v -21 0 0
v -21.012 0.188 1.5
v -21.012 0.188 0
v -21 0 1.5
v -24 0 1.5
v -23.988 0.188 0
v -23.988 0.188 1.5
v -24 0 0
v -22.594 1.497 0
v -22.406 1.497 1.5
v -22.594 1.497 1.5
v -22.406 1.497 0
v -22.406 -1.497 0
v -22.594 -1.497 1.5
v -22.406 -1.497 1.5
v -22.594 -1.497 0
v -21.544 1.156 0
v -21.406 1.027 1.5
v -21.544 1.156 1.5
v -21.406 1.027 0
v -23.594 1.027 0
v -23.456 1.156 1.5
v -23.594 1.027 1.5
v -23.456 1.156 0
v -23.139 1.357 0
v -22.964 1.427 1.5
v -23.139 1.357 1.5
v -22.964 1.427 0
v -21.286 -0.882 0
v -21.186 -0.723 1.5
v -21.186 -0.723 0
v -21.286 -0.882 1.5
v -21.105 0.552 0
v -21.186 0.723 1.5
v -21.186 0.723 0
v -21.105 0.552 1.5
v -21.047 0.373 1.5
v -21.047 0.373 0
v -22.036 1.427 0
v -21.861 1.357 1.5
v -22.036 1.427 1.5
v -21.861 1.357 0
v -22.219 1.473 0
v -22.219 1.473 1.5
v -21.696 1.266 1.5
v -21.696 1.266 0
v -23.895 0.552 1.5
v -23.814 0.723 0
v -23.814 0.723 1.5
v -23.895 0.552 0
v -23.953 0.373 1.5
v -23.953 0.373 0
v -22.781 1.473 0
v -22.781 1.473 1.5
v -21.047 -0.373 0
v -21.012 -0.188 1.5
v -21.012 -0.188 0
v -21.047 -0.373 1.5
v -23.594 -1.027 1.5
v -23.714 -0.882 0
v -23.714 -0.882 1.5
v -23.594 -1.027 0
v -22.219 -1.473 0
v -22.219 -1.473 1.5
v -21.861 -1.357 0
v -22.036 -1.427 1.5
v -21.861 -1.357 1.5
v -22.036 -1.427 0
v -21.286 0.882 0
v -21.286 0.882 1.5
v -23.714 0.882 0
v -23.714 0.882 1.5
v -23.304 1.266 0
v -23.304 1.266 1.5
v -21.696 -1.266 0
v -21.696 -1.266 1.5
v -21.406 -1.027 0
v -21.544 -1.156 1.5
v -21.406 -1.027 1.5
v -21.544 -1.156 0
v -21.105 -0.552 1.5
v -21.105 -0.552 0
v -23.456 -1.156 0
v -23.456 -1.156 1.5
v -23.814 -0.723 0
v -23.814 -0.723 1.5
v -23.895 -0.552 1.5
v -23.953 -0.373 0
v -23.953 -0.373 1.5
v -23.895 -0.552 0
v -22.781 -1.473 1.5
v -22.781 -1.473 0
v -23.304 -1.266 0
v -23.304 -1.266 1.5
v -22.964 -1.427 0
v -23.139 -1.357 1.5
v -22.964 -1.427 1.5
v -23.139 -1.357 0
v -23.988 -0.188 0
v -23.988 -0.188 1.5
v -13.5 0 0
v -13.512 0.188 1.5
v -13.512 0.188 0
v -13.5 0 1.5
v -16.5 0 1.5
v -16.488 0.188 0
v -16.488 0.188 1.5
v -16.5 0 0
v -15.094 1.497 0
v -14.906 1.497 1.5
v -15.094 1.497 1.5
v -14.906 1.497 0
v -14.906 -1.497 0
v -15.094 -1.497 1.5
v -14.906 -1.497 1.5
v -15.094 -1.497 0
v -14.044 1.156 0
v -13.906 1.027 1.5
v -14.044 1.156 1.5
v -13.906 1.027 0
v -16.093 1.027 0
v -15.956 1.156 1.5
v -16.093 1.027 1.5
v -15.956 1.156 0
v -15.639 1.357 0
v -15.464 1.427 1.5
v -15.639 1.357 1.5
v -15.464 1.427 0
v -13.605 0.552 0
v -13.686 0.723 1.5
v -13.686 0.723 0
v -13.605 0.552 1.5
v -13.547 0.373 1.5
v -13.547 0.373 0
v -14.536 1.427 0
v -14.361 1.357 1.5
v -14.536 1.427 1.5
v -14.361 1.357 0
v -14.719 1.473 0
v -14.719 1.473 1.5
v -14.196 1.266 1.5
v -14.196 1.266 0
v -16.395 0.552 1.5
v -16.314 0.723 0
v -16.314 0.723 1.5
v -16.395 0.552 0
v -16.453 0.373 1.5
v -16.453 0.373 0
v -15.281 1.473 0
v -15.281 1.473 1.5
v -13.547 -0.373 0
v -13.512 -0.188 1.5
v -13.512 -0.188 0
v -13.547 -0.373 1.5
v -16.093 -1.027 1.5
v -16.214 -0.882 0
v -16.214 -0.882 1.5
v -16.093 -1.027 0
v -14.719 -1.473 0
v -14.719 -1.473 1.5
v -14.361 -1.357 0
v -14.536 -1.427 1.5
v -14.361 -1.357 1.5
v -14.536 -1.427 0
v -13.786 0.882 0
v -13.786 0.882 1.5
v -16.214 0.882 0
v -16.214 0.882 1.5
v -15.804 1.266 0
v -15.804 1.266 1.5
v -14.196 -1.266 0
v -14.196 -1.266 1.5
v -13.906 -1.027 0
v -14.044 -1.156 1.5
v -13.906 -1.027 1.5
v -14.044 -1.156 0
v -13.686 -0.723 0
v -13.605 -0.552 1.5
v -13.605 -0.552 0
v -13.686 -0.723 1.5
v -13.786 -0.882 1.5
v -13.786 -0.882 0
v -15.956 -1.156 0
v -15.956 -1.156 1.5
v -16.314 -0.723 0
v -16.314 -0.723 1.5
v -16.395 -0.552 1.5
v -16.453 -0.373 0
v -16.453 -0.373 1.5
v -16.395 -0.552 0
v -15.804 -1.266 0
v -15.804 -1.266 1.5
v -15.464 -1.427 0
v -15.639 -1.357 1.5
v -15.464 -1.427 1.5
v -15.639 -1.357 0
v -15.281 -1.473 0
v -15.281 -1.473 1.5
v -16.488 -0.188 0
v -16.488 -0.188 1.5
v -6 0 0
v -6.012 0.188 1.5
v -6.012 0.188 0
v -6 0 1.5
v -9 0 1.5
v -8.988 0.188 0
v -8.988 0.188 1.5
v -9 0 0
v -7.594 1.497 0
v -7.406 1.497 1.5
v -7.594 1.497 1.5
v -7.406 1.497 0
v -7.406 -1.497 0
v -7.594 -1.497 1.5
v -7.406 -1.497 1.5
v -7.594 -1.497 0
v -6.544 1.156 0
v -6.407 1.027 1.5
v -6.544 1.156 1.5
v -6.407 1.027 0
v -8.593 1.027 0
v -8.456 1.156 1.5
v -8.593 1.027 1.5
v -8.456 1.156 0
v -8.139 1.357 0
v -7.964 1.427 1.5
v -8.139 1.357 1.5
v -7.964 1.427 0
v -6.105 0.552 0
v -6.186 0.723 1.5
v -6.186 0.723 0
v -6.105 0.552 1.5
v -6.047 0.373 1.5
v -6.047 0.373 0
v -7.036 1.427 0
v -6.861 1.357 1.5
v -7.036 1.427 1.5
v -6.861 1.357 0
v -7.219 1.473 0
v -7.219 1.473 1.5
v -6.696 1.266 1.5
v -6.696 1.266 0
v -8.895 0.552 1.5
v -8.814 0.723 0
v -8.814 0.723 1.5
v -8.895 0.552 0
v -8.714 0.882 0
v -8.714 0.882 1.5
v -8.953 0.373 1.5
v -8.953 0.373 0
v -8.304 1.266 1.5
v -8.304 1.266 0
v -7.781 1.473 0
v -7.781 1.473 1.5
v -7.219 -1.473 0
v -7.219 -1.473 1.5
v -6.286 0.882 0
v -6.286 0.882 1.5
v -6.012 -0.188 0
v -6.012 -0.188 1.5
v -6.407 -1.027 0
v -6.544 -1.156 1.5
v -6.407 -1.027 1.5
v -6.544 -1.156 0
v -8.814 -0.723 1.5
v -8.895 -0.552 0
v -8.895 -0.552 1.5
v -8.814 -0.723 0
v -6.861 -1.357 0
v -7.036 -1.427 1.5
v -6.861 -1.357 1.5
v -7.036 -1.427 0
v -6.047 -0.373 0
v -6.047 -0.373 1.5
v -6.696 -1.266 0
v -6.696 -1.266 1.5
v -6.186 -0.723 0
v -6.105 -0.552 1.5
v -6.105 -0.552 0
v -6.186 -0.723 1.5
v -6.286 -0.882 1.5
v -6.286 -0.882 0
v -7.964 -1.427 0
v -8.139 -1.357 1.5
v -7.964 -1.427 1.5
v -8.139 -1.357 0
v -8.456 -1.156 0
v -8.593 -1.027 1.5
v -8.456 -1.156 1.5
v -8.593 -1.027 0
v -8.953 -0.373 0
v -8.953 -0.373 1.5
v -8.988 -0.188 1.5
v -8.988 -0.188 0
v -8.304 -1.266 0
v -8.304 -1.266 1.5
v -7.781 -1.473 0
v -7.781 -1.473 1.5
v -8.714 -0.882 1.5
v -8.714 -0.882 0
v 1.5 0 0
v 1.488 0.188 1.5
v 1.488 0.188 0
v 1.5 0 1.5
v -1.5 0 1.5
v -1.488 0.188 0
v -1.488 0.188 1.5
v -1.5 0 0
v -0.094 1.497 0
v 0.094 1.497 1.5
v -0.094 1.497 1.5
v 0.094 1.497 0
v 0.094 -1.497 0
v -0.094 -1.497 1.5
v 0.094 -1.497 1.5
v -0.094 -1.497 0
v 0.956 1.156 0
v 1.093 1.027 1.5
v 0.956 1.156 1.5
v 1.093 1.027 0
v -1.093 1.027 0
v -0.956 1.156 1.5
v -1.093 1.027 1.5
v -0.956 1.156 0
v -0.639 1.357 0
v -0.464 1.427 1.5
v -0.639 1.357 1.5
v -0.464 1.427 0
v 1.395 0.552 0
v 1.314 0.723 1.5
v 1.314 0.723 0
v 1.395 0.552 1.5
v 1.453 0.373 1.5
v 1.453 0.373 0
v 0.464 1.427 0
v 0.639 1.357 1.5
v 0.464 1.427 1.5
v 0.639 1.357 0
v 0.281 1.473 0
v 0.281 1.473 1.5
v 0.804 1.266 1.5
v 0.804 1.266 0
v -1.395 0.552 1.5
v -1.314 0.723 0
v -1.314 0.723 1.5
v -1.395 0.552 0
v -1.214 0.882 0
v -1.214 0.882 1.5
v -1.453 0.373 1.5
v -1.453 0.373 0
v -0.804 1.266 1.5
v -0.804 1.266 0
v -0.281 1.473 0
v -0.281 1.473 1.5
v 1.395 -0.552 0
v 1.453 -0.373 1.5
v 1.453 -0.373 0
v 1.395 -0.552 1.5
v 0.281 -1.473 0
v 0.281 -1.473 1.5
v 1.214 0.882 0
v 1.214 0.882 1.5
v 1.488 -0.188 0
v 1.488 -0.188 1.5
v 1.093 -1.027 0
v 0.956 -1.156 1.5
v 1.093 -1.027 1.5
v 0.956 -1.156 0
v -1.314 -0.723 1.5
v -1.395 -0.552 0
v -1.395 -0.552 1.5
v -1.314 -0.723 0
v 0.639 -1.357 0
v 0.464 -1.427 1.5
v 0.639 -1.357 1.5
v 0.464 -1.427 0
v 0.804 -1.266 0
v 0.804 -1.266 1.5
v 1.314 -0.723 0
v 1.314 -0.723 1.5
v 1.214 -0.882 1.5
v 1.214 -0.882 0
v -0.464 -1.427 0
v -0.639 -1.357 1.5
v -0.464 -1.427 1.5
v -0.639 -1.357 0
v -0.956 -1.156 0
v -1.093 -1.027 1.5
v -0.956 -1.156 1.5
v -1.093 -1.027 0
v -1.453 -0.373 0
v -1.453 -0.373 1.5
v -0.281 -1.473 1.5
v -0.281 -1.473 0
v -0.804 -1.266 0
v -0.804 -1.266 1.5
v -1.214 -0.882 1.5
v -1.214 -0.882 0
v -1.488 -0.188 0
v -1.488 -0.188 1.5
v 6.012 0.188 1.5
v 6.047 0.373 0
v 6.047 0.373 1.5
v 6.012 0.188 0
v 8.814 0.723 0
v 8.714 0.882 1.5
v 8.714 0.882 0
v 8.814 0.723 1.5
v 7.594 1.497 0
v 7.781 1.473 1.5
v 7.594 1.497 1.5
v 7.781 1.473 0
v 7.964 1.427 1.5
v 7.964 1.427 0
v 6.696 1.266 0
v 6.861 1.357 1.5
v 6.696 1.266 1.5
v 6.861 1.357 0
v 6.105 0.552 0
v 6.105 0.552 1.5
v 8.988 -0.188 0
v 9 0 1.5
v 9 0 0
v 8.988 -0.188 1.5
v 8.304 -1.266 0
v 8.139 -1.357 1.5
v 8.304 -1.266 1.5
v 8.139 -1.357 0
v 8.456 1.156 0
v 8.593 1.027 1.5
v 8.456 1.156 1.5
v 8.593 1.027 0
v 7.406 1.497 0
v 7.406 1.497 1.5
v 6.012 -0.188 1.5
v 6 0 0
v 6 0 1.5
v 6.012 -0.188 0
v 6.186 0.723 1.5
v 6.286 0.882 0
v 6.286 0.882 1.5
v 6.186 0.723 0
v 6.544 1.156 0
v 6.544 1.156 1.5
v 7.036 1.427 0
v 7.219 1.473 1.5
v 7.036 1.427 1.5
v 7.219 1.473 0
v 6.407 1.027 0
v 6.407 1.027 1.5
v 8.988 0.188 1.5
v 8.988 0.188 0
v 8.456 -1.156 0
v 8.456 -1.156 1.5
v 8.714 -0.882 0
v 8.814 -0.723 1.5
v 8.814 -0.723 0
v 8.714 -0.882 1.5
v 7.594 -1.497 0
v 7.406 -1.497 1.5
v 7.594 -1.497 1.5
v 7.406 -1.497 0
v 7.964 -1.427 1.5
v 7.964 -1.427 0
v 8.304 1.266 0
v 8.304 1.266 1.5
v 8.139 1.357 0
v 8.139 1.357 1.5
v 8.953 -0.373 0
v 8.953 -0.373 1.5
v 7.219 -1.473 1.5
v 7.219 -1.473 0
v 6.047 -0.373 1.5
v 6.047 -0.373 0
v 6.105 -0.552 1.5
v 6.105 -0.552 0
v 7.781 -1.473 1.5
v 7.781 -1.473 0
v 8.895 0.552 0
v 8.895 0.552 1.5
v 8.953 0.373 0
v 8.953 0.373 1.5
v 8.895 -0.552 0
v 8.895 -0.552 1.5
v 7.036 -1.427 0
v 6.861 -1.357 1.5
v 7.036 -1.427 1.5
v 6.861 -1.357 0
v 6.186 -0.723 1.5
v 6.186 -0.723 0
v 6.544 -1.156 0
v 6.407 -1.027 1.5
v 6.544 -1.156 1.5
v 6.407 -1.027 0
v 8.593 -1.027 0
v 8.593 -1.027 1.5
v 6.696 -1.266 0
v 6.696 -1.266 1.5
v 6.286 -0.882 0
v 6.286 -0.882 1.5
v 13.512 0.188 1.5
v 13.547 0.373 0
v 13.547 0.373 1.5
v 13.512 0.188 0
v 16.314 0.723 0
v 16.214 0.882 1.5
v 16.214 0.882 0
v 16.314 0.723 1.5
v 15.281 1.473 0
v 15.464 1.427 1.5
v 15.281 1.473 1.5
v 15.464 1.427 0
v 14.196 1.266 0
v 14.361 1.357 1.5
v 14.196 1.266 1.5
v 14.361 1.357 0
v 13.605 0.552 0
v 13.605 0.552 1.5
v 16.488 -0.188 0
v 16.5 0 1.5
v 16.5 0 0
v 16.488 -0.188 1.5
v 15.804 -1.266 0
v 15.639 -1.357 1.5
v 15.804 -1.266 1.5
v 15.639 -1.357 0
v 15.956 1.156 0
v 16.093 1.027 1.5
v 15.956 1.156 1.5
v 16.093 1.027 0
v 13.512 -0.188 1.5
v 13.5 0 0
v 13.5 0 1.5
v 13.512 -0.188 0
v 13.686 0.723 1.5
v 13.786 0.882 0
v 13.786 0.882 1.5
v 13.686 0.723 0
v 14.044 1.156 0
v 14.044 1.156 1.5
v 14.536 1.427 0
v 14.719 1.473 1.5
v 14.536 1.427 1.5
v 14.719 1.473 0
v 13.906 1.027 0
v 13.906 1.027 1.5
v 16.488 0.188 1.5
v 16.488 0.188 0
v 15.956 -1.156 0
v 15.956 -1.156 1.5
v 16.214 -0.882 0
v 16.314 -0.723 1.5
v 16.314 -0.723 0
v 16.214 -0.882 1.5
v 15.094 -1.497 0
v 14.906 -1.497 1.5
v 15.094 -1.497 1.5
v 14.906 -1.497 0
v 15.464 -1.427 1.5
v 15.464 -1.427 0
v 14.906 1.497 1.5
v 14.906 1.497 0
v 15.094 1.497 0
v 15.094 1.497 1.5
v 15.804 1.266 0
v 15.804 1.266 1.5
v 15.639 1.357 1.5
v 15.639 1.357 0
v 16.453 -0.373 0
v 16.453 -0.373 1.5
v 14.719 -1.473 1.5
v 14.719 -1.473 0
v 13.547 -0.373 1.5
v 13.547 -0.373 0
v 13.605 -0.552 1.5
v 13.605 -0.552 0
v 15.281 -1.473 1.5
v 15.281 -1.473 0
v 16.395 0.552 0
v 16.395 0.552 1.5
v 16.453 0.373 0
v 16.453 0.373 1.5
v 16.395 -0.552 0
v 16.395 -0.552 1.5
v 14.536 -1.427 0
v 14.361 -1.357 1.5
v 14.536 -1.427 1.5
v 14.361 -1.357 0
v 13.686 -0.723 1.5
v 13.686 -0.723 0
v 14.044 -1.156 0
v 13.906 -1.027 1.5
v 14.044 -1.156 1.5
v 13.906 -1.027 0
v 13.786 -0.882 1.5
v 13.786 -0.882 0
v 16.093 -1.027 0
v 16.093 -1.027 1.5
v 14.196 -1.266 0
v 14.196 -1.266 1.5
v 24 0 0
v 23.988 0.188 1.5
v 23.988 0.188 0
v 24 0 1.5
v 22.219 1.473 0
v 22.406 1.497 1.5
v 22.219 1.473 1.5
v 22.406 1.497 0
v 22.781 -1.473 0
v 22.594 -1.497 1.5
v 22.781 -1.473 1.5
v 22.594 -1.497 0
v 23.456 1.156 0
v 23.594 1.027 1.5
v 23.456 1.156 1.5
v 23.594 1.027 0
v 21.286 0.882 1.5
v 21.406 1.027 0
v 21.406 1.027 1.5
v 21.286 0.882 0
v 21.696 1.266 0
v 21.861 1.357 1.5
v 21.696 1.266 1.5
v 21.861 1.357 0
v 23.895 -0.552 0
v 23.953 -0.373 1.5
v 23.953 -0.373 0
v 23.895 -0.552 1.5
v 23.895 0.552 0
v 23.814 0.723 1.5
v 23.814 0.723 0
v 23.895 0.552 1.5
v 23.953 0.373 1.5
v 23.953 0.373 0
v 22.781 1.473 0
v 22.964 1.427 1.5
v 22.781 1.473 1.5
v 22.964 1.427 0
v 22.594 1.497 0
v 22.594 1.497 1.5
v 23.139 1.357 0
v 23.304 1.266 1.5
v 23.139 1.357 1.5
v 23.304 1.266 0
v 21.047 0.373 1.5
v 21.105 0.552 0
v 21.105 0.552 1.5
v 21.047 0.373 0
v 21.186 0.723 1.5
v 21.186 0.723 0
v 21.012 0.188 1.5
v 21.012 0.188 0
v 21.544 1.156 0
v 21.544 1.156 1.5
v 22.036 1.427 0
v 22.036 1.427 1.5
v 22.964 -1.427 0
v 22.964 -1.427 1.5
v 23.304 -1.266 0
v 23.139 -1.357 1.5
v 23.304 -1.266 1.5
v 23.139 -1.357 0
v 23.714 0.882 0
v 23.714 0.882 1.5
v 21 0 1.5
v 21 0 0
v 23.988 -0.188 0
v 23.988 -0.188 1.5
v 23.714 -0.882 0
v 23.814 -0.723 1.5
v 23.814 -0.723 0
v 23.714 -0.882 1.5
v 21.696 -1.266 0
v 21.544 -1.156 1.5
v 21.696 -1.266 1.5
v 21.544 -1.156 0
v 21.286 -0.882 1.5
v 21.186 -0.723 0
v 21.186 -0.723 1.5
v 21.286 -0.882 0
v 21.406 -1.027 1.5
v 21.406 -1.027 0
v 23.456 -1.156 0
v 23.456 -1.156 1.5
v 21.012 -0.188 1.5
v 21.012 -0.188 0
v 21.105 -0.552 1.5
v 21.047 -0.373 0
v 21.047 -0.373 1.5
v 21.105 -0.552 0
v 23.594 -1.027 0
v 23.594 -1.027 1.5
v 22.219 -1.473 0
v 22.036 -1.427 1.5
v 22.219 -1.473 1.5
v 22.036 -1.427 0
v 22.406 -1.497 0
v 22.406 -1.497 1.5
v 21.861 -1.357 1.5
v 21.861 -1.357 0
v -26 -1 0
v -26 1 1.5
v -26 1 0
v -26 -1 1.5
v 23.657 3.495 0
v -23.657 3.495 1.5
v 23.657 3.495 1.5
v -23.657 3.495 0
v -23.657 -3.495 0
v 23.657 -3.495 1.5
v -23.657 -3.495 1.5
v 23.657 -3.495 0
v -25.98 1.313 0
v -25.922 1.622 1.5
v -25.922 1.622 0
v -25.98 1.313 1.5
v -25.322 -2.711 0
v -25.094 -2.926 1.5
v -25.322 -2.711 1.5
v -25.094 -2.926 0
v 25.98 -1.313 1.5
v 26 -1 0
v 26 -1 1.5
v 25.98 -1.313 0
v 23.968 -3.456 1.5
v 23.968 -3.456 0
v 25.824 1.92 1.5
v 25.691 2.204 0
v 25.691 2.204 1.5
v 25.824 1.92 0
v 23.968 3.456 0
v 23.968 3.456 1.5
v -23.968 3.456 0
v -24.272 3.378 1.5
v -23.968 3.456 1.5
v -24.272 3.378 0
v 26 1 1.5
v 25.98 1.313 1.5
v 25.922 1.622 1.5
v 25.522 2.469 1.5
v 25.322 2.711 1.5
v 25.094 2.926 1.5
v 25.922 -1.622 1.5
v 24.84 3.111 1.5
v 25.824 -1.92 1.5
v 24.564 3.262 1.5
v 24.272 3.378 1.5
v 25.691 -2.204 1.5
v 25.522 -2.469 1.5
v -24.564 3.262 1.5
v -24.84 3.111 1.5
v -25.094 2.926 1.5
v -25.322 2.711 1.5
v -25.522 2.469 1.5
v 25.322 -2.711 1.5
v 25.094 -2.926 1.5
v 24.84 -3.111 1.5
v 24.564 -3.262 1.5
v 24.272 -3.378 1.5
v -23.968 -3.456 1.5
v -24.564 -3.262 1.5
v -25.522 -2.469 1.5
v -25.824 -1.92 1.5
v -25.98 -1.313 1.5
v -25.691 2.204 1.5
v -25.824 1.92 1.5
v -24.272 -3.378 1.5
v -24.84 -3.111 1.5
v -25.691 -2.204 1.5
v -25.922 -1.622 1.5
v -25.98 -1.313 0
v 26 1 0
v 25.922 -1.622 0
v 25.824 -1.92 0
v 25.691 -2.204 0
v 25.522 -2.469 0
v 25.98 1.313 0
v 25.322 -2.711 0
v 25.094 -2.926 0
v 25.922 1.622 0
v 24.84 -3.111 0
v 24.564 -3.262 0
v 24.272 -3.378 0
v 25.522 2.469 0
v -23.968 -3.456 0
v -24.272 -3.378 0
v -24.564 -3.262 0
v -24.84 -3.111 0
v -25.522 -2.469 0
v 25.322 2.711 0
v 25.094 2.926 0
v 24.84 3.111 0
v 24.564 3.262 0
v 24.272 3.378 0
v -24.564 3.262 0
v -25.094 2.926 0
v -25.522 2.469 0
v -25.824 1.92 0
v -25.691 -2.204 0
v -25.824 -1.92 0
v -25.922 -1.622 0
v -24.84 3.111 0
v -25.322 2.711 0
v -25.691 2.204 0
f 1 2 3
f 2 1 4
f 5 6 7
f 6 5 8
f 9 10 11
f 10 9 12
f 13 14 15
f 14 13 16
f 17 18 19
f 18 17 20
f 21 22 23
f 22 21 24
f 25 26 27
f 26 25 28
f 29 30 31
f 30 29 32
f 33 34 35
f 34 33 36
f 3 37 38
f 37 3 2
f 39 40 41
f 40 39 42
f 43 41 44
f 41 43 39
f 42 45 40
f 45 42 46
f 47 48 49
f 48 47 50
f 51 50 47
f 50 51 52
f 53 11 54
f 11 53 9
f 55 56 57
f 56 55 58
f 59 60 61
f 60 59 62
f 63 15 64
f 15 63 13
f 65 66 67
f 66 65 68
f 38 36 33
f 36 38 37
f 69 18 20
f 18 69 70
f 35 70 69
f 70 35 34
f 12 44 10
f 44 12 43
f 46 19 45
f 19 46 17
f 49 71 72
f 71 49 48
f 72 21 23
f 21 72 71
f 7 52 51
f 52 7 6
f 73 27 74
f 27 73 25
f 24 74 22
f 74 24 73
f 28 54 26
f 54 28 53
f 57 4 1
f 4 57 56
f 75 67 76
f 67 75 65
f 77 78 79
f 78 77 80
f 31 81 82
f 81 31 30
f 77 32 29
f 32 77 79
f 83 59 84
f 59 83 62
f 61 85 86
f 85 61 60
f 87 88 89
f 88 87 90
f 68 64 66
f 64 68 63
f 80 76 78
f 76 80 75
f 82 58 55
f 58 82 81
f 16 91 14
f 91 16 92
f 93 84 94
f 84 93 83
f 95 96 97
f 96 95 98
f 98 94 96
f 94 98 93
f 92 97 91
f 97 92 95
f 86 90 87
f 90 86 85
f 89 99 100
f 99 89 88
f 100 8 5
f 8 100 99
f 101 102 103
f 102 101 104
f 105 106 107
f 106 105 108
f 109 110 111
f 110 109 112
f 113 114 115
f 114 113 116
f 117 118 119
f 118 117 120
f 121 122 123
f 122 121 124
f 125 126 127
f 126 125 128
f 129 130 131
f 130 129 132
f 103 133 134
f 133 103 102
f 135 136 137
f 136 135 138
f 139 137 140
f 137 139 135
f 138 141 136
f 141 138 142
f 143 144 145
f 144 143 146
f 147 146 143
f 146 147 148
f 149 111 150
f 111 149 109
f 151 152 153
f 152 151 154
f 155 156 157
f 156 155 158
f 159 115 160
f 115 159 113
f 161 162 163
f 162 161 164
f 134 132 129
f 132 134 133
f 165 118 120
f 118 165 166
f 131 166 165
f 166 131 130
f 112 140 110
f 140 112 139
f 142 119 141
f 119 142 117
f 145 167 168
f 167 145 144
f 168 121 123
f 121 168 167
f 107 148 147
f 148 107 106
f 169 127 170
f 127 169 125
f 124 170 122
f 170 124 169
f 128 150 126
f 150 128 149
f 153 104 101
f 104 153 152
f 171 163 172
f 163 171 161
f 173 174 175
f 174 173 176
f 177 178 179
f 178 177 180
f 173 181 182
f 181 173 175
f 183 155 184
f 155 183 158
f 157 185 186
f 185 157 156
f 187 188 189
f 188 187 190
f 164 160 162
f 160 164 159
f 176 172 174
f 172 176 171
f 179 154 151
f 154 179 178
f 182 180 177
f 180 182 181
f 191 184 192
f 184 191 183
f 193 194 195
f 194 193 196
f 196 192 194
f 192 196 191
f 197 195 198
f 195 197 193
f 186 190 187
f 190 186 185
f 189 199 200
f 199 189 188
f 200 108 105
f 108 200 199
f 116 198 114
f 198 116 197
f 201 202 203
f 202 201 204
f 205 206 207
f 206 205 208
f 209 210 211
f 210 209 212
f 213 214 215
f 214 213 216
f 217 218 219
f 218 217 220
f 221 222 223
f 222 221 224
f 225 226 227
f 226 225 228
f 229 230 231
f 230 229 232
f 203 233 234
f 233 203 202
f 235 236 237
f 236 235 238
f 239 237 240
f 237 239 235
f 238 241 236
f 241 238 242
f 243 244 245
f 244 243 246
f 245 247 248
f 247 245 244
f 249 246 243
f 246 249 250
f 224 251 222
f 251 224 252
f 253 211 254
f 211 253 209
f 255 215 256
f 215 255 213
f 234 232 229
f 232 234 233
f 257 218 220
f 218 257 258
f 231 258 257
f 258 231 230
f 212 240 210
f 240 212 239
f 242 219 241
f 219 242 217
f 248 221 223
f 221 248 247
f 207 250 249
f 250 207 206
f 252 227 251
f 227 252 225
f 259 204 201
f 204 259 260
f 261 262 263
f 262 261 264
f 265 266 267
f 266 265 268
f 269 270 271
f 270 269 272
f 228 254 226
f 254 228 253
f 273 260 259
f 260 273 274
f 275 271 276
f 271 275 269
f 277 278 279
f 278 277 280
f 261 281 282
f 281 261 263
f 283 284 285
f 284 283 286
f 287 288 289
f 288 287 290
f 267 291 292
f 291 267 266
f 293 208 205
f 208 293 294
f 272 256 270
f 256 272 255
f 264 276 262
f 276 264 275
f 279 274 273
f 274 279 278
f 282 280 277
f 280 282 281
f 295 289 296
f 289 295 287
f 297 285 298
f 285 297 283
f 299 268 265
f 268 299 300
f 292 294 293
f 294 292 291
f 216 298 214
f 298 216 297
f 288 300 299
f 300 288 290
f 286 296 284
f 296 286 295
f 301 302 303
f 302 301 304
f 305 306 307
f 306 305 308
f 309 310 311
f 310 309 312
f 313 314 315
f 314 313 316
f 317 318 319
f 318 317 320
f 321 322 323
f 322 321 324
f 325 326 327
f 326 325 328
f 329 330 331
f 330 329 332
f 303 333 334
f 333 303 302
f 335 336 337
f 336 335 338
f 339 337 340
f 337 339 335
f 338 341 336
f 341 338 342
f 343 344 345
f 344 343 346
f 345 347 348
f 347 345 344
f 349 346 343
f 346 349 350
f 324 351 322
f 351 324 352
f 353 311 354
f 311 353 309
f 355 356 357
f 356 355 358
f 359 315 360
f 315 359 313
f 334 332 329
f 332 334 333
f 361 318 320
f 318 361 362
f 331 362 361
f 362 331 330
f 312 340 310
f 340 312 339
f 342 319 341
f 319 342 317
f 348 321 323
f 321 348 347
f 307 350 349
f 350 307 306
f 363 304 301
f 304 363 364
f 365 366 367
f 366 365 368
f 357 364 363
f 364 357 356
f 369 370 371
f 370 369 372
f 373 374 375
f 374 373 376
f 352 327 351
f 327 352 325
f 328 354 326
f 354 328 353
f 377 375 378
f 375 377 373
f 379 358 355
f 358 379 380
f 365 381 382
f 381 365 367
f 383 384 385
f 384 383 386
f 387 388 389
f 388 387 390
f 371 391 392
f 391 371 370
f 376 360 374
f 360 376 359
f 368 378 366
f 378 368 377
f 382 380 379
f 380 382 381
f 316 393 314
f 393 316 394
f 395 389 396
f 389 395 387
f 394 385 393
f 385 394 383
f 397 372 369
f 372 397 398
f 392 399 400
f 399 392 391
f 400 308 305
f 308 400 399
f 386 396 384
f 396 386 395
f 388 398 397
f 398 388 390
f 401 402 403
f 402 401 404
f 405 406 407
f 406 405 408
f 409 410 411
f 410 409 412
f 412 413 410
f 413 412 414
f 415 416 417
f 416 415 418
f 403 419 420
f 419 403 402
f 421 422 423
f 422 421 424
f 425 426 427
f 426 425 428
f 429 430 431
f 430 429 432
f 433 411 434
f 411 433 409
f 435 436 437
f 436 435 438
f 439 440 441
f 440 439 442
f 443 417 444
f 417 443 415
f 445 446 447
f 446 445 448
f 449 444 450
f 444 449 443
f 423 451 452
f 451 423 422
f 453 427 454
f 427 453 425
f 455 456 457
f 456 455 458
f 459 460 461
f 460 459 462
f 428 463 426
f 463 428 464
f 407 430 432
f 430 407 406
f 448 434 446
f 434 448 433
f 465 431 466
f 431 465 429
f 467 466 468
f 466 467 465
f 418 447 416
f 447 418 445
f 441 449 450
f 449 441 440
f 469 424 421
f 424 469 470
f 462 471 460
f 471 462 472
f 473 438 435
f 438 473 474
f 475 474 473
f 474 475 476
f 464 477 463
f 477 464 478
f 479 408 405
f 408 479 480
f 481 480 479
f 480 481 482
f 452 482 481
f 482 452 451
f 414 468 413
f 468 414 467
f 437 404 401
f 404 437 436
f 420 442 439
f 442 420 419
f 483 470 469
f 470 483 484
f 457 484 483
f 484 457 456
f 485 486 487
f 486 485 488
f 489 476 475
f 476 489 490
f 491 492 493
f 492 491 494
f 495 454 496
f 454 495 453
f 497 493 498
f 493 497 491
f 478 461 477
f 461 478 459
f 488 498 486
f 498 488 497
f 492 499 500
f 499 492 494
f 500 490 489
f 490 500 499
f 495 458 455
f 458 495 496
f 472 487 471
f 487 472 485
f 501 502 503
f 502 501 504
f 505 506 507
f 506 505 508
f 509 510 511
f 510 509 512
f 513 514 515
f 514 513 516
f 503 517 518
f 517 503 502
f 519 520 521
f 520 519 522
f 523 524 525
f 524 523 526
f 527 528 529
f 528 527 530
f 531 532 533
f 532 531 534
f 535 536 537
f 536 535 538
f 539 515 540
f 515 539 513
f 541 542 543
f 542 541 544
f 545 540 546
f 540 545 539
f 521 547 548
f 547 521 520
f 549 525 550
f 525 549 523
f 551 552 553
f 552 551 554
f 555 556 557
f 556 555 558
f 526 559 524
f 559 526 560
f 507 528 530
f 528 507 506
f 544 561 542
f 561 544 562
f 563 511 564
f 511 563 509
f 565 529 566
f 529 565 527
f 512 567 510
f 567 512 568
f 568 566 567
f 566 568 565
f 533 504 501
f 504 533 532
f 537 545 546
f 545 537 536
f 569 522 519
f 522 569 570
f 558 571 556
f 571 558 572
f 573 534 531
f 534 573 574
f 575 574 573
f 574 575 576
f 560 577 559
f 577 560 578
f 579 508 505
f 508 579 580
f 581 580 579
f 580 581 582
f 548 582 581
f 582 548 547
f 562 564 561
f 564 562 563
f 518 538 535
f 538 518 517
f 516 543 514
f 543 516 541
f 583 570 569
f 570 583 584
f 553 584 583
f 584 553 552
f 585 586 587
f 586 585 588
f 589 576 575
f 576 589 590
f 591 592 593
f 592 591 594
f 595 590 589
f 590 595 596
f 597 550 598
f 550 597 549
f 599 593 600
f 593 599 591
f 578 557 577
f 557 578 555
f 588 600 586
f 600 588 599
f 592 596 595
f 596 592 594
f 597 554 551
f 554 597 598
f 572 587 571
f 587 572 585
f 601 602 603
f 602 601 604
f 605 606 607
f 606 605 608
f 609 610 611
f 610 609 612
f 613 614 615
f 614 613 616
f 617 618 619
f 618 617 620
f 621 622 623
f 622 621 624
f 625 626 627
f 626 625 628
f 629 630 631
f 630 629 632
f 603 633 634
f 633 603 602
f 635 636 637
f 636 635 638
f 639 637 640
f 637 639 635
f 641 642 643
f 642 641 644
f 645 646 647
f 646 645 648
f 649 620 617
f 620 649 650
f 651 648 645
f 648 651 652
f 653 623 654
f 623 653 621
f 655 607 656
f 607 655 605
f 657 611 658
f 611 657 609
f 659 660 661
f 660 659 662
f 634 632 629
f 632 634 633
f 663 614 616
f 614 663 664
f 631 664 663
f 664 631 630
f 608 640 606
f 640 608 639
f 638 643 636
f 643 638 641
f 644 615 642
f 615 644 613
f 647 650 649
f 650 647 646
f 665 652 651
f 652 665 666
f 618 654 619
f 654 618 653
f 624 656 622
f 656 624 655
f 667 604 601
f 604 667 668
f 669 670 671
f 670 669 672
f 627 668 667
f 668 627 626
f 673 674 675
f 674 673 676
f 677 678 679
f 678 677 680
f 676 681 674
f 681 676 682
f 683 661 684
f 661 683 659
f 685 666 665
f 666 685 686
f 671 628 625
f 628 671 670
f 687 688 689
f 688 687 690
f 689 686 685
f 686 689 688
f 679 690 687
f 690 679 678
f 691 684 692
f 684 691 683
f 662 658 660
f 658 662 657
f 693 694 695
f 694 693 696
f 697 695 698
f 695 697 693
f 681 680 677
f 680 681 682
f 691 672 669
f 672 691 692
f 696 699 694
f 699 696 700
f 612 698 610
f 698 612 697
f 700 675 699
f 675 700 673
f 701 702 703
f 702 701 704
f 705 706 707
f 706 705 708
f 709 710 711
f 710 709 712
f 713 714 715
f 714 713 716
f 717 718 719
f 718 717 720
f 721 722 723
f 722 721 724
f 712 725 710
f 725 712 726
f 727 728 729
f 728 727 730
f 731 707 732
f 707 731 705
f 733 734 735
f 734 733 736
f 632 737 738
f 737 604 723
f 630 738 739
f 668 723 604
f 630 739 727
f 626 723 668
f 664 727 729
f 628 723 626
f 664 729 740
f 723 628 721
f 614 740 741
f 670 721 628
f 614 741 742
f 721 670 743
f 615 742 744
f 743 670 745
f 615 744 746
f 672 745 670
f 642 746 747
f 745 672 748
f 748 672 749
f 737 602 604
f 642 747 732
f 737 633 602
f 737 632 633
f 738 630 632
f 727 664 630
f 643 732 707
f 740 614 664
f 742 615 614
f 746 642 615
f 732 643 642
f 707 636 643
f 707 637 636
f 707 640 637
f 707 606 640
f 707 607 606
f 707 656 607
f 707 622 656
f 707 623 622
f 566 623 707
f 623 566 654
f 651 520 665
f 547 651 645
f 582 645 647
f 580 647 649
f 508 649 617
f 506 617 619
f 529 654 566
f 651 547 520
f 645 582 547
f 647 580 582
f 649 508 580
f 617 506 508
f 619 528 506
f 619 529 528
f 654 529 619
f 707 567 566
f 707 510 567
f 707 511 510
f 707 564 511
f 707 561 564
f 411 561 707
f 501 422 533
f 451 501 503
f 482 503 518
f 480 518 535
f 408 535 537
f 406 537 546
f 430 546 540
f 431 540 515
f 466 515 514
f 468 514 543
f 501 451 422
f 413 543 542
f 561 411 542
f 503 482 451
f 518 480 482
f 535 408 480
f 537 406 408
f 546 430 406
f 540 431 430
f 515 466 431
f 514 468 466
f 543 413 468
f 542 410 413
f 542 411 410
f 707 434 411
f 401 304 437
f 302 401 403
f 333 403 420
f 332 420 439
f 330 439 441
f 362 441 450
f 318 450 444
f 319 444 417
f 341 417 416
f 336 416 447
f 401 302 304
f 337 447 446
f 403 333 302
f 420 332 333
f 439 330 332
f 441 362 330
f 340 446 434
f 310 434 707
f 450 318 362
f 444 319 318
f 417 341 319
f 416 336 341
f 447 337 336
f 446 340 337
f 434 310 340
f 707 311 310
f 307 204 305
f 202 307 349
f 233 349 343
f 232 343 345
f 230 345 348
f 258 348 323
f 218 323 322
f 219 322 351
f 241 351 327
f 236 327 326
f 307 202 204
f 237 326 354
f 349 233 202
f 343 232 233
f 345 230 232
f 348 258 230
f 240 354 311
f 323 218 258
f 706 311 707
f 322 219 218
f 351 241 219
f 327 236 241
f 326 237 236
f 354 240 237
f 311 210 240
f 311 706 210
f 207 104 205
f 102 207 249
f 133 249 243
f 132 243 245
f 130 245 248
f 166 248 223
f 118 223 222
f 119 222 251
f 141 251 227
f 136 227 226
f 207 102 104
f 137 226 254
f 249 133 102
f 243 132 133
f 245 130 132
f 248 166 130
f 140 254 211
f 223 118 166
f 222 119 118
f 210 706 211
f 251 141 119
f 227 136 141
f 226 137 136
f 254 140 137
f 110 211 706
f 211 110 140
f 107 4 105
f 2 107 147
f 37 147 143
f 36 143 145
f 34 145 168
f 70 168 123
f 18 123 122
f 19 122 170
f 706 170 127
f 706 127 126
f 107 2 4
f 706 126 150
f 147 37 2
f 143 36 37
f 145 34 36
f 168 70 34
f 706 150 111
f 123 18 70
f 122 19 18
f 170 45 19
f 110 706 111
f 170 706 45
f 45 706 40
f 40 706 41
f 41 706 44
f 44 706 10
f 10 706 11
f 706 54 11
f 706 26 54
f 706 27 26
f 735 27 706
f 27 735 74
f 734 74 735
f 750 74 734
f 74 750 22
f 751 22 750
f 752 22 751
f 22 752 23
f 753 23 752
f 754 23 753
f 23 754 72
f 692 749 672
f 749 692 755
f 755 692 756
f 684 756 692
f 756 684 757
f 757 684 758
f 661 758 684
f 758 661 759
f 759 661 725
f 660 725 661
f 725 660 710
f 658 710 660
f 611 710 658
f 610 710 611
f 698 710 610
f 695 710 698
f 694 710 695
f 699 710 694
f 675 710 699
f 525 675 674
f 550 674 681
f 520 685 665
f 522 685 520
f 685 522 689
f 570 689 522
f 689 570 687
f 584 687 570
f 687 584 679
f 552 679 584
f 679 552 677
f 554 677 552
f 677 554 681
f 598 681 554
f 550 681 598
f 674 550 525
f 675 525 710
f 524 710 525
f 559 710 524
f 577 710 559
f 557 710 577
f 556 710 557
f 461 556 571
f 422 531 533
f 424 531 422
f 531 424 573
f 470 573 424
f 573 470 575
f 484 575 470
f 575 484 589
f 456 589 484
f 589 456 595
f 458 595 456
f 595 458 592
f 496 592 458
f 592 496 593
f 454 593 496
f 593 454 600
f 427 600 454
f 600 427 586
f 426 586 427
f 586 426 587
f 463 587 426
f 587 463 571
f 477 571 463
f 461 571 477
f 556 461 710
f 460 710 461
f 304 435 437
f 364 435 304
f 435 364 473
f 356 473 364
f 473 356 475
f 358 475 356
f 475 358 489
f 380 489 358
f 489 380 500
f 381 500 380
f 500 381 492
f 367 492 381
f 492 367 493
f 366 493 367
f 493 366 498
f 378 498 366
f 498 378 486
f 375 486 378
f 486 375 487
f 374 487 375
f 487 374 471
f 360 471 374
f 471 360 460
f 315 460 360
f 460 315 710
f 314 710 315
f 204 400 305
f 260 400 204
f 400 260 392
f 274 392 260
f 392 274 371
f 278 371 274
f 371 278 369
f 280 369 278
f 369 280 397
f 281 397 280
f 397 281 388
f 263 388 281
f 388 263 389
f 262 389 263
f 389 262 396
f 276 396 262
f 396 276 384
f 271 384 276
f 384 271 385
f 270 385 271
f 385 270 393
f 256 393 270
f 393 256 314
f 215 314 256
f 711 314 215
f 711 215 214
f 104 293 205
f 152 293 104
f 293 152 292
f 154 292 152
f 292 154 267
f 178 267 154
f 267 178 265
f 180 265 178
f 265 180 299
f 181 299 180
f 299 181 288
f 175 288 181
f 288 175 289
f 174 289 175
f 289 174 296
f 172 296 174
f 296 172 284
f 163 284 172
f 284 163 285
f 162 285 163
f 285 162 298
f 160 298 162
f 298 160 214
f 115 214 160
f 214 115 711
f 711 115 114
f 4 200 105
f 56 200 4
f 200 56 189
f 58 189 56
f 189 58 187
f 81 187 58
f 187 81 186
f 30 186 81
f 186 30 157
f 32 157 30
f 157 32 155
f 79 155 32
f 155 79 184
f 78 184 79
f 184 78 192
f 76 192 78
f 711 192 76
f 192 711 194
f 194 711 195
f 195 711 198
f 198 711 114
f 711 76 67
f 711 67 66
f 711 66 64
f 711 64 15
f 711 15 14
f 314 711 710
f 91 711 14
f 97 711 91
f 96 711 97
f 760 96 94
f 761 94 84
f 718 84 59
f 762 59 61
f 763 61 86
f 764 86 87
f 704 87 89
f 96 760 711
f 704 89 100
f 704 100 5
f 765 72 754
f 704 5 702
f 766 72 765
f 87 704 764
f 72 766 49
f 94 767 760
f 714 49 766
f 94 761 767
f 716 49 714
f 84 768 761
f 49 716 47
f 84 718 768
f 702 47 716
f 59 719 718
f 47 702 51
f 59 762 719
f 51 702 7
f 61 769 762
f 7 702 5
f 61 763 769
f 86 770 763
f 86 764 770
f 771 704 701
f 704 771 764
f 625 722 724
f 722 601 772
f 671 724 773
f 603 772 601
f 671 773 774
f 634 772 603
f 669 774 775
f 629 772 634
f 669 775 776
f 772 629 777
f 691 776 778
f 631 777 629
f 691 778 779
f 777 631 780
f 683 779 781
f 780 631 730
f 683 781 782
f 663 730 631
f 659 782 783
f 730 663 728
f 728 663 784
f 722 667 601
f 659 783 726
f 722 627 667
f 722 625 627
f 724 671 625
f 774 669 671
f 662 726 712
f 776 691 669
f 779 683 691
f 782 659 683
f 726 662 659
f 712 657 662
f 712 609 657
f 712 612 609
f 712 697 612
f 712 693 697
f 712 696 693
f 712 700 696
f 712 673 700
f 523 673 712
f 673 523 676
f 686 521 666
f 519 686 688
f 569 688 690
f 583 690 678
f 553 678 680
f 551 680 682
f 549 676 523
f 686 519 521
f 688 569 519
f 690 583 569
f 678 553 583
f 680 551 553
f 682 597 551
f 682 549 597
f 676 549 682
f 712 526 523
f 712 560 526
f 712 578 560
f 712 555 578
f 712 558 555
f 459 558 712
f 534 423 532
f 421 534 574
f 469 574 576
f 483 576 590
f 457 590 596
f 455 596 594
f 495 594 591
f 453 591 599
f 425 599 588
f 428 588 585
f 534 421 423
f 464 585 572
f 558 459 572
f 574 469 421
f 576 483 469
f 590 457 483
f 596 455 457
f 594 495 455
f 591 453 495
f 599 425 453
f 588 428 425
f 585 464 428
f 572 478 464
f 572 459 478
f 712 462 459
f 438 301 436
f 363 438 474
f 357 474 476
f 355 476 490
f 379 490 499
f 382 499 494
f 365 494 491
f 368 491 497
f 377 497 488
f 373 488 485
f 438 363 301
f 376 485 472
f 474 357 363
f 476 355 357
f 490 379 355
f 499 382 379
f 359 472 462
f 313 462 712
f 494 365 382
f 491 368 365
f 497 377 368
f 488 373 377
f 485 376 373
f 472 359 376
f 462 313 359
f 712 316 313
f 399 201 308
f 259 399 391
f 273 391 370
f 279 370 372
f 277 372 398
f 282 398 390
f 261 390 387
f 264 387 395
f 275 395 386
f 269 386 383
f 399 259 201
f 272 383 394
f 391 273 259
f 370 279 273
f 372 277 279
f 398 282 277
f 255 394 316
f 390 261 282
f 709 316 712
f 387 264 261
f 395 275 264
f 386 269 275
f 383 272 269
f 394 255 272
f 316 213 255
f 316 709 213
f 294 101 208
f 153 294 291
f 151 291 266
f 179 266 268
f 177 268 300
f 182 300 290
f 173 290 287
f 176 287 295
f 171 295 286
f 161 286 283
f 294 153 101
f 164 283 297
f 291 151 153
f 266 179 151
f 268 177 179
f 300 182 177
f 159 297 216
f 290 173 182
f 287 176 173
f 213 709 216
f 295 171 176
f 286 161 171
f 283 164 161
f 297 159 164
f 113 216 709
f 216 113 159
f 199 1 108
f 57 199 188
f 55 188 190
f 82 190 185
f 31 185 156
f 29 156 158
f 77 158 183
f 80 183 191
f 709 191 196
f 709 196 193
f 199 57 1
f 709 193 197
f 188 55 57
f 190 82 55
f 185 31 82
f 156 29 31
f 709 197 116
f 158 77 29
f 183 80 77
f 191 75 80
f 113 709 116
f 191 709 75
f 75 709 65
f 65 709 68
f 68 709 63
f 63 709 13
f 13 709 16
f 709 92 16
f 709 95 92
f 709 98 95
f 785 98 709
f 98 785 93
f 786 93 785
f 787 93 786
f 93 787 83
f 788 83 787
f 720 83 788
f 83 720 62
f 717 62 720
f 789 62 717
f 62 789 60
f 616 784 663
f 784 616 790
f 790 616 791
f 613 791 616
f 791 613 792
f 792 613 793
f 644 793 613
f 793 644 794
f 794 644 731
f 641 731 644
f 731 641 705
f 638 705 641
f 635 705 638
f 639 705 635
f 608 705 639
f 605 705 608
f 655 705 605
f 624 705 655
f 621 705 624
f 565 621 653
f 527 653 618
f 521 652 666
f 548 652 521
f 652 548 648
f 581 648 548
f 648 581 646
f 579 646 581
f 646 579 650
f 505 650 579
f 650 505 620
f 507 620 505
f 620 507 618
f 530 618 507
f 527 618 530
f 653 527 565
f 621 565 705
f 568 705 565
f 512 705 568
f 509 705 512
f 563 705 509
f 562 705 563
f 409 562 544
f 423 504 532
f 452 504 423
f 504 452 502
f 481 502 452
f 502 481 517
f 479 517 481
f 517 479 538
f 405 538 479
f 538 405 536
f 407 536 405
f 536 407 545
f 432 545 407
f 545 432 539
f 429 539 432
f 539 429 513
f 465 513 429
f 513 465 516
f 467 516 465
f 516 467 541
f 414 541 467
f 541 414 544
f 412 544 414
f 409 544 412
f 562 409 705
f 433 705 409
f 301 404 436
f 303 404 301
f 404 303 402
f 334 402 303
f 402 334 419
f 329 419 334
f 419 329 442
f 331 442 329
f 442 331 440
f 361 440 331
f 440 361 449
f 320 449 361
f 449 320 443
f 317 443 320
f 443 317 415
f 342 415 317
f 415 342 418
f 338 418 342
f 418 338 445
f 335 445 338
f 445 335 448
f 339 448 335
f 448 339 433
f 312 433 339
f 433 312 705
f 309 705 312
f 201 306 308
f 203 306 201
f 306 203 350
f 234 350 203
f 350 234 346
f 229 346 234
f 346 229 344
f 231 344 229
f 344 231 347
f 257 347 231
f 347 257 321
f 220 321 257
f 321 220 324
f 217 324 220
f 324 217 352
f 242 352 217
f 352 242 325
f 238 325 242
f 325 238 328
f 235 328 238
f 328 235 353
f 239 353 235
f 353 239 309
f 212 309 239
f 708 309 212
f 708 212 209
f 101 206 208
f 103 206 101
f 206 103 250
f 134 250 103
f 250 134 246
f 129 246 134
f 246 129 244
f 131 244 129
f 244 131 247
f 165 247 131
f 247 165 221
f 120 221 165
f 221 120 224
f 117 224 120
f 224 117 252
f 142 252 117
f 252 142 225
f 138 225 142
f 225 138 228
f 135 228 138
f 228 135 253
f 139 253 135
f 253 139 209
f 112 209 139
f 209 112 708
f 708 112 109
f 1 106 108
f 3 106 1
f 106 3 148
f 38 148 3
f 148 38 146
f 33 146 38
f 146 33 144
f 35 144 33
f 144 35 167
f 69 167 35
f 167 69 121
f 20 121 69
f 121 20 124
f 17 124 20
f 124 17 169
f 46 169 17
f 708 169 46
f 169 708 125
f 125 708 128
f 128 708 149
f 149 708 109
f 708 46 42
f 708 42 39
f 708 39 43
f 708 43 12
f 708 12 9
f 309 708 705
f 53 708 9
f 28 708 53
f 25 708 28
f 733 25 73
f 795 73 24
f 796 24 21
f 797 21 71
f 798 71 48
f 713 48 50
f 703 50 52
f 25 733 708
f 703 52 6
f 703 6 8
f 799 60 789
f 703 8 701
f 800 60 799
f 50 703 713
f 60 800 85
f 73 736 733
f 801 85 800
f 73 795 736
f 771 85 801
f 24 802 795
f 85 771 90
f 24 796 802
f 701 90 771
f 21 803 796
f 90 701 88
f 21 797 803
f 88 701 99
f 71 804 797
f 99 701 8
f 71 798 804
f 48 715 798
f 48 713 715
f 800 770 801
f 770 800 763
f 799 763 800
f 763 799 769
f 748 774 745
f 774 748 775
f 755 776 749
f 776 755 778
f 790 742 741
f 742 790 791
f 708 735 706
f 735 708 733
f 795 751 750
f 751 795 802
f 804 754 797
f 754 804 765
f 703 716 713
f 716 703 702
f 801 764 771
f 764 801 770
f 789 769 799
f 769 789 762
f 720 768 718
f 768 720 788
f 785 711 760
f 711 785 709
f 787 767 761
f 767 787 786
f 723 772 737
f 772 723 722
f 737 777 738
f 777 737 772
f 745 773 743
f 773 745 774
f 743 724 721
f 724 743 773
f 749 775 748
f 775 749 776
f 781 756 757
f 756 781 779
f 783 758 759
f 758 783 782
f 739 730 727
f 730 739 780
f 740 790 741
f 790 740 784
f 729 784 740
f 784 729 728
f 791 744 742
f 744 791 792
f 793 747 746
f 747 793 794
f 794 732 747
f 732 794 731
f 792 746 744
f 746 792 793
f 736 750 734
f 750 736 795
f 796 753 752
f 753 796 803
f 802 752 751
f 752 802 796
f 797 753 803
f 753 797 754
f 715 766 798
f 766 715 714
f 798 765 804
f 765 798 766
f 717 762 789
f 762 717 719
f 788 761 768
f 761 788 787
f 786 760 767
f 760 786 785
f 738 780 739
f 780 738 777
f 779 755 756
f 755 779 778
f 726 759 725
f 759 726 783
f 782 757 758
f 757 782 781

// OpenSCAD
$fn = 50;


difference() {
	union() {
		translate(v = [0, 0, 0]) {
			rotate(a = [0, 0, 0]) {
				hull() {
					translate(v = [-23.5000000000, 1.0000000000, 0]) {
						rotate(a = [0, 0, 0]) {
							translate(v = [0, 0, 0]) {
								rotate(a = [0, 0, 0]) {
									cylinder(h = 1.5000000000, r = 2.5000000000);
								}
							}
						}
					}
					translate(v = [23.5000000000, 1.0000000000, 0]) {
						rotate(a = [0, 0, 0]) {
							translate(v = [0, 0, 0]) {
								rotate(a = [0, 0, 0]) {
									cylinder(h = 1.5000000000, r = 2.5000000000);
								}
							}
						}
					}
					translate(v = [-23.5000000000, -1.0000000000, 0]) {
						rotate(a = [0, 0, 0]) {
							translate(v = [0, 0, 0]) {
								rotate(a = [0, 0, 0]) {
									cylinder(h = 1.5000000000, r = 2.5000000000);
								}
							}
						}
					}
					translate(v = [23.5000000000, -1.0000000000, 0]) {
						rotate(a = [0, 0, 0]) {
							translate(v = [0, 0, 0]) {
								rotate(a = [0, 0, 0]) {
									cylinder(h = 1.5000000000, r = 2.5000000000);
								}
							}
						}
					}
				}
			}
		}
	}
	union() {
		translate(v = [-22.5000000000, 0.0000000000, 0]) {
			rotate(a = [0, 0, 0]) {
				translate(v = [0, 0, -50]) {
					rotate(a = [0, 0, 0]) {
						cylinder(h = 100, r = 1.5000000000);
					}
				}
			}
		}
		translate(v = [-15.0000000000, 0.0000000000, 0]) {
			rotate(a = [0, 0, 0]) {
				translate(v = [0, 0, -50]) {
					rotate(a = [0, 0, 0]) {
						cylinder(h = 100, r = 1.5000000000);
					}
				}
			}
		}
		translate(v = [-7.5000000000, 0.0000000000, 0]) {
			rotate(a = [0, 0, 0]) {
				translate(v = [0, 0, -50]) {
					rotate(a = [0, 0, 0]) {
						cylinder(h = 100, r = 1.5000000000);
					}
				}
			}
		}
		translate(v = [0.0000000000, 0.0000000000, 0]) {
			rotate(a = [0, 0, 0]) {
				translate(v = [0, 0, -50]) {
					rotate(a = [0, 0, 0]) {
						cylinder(h = 100, r = 1.5000000000);
					}
				}
			}
		}
		translate(v = [7.5000000000, 0.0000000000, 0]) {
			rotate(a = [0, 0, 0]) {
				translate(v = [0, 0, -50]) {
					rotate(a = [0, 0, 0]) {
						cylinder(h = 100, r = 1.5000000000);
					}
				}
			}
		}
		translate(v = [15.0000000000, 0.0000000000, 0]) {
			rotate(a = [0, 0, 0]) {
				translate(v = [0, 0, -50]) {
					rotate(a = [0, 0, 0]) {
						cylinder(h = 100, r = 1.5000000000);
					}
				}
			}
		}
		translate(v = [22.5000000000, 0.0000000000, 0]) {
			rotate(a = [0, 0, 0]) {
				translate(v = [0, 0, -50]) {
					rotate(a = [0, 0, 0]) {
						cylinder(h = 100, r = 1.5000000000);
					}
				}
			}
		}
	}
}
